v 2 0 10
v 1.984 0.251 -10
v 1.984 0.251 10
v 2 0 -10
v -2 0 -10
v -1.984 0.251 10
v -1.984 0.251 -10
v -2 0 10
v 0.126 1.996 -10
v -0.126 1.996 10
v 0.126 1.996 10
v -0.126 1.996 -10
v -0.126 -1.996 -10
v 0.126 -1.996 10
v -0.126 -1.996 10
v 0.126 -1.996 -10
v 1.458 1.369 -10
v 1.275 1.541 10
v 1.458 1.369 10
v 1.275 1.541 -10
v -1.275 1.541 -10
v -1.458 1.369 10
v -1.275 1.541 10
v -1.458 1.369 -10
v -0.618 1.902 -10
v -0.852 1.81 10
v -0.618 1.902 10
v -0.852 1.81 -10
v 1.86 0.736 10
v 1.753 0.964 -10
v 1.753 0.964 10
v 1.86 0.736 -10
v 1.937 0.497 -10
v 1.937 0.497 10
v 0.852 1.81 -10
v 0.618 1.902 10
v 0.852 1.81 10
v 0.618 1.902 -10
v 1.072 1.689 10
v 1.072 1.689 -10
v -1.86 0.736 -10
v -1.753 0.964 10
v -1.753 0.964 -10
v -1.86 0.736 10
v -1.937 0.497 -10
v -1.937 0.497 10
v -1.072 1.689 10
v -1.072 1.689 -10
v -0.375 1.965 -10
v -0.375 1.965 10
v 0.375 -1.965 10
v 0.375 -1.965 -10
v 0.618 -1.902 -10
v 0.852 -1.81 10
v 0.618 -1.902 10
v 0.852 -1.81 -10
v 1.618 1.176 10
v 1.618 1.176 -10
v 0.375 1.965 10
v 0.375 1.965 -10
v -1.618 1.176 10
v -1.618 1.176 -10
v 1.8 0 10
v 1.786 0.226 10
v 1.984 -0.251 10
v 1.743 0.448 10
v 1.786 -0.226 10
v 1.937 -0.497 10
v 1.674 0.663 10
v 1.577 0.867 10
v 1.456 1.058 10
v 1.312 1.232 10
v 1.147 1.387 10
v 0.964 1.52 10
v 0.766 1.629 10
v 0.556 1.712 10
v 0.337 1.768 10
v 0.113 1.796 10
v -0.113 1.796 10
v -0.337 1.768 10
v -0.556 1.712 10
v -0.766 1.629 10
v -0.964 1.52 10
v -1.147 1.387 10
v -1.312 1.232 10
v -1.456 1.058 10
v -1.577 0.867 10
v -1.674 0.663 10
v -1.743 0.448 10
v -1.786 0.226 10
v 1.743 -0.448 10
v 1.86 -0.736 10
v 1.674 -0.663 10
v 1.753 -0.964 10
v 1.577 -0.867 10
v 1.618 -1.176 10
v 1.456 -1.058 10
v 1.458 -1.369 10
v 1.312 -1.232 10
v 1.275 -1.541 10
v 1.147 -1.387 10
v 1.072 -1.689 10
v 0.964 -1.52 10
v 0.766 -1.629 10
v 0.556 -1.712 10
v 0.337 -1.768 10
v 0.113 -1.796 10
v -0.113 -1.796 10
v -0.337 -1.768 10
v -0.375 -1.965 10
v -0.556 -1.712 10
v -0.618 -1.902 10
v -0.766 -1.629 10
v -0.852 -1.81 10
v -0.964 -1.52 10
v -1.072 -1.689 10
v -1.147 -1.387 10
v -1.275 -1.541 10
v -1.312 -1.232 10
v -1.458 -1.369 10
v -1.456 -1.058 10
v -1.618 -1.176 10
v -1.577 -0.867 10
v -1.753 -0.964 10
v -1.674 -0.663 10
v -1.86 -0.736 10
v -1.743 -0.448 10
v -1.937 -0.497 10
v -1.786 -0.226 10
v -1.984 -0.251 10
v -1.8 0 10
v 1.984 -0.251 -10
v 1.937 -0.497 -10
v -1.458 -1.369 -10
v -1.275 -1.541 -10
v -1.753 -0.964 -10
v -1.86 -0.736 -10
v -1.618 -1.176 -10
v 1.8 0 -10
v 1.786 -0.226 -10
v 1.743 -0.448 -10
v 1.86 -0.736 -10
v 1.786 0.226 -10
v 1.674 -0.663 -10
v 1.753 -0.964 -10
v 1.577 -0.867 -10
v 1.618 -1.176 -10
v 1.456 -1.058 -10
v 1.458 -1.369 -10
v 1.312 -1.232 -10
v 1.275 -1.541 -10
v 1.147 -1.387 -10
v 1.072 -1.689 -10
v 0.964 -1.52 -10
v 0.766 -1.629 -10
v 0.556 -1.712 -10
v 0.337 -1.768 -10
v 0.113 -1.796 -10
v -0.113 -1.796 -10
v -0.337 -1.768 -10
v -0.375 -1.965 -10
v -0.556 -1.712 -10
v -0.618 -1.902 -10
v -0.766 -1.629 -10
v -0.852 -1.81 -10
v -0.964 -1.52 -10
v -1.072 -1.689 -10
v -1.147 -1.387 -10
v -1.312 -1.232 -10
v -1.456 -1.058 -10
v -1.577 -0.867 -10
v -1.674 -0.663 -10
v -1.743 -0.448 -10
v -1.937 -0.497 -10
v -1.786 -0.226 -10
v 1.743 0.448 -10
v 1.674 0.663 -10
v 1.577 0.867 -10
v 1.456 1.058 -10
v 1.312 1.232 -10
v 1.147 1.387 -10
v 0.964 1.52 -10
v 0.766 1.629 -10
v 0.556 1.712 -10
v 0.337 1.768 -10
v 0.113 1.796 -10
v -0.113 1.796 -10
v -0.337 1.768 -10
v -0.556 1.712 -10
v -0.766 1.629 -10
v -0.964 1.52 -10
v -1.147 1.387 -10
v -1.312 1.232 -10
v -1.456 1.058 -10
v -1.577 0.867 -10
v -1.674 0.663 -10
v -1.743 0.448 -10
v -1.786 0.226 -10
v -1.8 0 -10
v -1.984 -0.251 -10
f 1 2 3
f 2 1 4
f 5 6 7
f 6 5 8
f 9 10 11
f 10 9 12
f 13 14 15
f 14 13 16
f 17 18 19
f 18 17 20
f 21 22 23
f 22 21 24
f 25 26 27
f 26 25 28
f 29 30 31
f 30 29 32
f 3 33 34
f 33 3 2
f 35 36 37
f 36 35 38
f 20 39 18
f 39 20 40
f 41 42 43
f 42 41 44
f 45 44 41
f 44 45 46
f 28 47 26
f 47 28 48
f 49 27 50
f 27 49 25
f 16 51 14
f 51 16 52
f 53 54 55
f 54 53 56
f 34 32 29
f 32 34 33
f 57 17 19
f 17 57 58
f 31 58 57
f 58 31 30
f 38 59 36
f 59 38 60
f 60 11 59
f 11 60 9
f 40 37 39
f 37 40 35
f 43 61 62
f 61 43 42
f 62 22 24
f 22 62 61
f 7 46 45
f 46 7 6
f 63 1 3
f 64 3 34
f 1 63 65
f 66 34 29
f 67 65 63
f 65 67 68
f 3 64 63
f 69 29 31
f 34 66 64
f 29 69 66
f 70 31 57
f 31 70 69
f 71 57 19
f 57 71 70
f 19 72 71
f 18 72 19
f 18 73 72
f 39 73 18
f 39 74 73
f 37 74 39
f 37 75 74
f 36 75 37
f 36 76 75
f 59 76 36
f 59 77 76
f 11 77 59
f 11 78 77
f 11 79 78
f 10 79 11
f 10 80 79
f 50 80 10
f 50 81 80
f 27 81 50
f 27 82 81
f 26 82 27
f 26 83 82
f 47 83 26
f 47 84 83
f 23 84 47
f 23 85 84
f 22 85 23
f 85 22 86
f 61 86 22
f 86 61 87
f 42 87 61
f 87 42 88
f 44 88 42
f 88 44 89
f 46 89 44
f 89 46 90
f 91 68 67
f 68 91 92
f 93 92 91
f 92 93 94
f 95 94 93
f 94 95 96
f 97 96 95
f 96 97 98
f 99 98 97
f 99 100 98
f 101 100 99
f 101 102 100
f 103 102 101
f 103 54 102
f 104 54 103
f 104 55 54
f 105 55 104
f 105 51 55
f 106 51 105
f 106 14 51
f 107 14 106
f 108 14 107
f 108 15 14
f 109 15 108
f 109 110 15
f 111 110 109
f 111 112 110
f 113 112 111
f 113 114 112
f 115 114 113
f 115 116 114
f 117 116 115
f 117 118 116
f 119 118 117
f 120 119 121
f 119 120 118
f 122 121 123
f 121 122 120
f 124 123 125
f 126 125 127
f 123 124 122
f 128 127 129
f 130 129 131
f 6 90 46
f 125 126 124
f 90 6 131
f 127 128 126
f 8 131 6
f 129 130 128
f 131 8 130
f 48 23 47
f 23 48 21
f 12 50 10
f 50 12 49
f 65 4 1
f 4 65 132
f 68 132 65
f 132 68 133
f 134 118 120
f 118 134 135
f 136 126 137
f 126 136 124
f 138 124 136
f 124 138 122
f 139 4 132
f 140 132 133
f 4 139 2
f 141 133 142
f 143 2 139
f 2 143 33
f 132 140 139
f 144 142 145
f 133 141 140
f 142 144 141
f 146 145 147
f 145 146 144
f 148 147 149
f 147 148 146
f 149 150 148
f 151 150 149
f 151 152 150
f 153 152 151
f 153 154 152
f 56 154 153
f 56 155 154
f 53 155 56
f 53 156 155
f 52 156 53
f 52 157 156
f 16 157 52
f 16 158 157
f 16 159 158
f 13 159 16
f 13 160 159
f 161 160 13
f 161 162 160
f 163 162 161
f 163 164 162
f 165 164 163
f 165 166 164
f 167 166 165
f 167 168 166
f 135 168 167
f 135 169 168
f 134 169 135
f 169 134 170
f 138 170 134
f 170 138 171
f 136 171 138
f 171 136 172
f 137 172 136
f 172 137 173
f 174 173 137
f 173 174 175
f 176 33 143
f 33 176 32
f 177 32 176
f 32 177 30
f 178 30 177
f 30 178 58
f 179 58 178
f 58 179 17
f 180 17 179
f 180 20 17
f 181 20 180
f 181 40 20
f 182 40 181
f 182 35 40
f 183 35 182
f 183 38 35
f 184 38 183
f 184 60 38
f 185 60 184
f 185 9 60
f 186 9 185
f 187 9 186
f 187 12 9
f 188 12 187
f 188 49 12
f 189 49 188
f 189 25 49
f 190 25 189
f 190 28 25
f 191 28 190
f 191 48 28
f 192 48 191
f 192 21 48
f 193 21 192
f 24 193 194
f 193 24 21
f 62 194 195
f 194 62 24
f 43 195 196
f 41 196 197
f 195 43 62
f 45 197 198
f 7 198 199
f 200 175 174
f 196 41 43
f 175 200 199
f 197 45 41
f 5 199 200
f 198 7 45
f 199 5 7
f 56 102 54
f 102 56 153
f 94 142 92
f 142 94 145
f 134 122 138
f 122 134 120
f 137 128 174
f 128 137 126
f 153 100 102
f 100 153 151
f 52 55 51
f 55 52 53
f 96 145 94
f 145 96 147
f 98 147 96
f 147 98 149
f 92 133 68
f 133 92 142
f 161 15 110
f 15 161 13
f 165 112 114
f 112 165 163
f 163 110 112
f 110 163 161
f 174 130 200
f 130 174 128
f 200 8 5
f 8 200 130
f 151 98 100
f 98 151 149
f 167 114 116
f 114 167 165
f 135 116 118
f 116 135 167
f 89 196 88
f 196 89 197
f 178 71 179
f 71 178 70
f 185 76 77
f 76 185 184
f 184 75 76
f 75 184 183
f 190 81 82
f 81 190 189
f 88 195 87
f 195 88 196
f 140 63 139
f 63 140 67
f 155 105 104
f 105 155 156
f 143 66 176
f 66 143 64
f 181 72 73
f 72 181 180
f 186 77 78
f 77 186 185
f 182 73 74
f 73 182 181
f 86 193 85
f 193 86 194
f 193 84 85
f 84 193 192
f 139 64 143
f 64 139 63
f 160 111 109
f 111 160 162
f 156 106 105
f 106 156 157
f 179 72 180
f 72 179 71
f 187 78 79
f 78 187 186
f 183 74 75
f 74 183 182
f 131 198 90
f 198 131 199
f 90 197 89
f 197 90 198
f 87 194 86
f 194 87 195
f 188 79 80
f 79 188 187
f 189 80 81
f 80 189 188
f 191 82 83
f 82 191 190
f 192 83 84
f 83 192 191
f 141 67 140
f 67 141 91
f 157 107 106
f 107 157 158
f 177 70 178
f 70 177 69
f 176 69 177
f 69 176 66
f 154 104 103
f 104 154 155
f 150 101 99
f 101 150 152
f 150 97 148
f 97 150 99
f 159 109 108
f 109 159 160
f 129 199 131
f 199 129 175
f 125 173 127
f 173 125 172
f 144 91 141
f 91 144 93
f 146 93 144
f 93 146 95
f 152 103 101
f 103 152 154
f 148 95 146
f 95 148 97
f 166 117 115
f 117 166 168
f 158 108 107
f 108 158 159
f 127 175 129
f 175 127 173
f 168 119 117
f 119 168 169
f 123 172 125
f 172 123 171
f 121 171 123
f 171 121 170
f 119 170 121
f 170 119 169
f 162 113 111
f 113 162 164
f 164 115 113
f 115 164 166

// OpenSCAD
$fn = 50;


difference() {
	union() {
		translate(v = [0, 0, -10.0000000000]) {
			cylinder(h = 20, r = 2.0000000000);
		}
	}
	union() {
		translate(v = [0, 0, -100.0000000000]) {
			cylinder(h = 200, r = 1.8000000000);
		}
	}
}
